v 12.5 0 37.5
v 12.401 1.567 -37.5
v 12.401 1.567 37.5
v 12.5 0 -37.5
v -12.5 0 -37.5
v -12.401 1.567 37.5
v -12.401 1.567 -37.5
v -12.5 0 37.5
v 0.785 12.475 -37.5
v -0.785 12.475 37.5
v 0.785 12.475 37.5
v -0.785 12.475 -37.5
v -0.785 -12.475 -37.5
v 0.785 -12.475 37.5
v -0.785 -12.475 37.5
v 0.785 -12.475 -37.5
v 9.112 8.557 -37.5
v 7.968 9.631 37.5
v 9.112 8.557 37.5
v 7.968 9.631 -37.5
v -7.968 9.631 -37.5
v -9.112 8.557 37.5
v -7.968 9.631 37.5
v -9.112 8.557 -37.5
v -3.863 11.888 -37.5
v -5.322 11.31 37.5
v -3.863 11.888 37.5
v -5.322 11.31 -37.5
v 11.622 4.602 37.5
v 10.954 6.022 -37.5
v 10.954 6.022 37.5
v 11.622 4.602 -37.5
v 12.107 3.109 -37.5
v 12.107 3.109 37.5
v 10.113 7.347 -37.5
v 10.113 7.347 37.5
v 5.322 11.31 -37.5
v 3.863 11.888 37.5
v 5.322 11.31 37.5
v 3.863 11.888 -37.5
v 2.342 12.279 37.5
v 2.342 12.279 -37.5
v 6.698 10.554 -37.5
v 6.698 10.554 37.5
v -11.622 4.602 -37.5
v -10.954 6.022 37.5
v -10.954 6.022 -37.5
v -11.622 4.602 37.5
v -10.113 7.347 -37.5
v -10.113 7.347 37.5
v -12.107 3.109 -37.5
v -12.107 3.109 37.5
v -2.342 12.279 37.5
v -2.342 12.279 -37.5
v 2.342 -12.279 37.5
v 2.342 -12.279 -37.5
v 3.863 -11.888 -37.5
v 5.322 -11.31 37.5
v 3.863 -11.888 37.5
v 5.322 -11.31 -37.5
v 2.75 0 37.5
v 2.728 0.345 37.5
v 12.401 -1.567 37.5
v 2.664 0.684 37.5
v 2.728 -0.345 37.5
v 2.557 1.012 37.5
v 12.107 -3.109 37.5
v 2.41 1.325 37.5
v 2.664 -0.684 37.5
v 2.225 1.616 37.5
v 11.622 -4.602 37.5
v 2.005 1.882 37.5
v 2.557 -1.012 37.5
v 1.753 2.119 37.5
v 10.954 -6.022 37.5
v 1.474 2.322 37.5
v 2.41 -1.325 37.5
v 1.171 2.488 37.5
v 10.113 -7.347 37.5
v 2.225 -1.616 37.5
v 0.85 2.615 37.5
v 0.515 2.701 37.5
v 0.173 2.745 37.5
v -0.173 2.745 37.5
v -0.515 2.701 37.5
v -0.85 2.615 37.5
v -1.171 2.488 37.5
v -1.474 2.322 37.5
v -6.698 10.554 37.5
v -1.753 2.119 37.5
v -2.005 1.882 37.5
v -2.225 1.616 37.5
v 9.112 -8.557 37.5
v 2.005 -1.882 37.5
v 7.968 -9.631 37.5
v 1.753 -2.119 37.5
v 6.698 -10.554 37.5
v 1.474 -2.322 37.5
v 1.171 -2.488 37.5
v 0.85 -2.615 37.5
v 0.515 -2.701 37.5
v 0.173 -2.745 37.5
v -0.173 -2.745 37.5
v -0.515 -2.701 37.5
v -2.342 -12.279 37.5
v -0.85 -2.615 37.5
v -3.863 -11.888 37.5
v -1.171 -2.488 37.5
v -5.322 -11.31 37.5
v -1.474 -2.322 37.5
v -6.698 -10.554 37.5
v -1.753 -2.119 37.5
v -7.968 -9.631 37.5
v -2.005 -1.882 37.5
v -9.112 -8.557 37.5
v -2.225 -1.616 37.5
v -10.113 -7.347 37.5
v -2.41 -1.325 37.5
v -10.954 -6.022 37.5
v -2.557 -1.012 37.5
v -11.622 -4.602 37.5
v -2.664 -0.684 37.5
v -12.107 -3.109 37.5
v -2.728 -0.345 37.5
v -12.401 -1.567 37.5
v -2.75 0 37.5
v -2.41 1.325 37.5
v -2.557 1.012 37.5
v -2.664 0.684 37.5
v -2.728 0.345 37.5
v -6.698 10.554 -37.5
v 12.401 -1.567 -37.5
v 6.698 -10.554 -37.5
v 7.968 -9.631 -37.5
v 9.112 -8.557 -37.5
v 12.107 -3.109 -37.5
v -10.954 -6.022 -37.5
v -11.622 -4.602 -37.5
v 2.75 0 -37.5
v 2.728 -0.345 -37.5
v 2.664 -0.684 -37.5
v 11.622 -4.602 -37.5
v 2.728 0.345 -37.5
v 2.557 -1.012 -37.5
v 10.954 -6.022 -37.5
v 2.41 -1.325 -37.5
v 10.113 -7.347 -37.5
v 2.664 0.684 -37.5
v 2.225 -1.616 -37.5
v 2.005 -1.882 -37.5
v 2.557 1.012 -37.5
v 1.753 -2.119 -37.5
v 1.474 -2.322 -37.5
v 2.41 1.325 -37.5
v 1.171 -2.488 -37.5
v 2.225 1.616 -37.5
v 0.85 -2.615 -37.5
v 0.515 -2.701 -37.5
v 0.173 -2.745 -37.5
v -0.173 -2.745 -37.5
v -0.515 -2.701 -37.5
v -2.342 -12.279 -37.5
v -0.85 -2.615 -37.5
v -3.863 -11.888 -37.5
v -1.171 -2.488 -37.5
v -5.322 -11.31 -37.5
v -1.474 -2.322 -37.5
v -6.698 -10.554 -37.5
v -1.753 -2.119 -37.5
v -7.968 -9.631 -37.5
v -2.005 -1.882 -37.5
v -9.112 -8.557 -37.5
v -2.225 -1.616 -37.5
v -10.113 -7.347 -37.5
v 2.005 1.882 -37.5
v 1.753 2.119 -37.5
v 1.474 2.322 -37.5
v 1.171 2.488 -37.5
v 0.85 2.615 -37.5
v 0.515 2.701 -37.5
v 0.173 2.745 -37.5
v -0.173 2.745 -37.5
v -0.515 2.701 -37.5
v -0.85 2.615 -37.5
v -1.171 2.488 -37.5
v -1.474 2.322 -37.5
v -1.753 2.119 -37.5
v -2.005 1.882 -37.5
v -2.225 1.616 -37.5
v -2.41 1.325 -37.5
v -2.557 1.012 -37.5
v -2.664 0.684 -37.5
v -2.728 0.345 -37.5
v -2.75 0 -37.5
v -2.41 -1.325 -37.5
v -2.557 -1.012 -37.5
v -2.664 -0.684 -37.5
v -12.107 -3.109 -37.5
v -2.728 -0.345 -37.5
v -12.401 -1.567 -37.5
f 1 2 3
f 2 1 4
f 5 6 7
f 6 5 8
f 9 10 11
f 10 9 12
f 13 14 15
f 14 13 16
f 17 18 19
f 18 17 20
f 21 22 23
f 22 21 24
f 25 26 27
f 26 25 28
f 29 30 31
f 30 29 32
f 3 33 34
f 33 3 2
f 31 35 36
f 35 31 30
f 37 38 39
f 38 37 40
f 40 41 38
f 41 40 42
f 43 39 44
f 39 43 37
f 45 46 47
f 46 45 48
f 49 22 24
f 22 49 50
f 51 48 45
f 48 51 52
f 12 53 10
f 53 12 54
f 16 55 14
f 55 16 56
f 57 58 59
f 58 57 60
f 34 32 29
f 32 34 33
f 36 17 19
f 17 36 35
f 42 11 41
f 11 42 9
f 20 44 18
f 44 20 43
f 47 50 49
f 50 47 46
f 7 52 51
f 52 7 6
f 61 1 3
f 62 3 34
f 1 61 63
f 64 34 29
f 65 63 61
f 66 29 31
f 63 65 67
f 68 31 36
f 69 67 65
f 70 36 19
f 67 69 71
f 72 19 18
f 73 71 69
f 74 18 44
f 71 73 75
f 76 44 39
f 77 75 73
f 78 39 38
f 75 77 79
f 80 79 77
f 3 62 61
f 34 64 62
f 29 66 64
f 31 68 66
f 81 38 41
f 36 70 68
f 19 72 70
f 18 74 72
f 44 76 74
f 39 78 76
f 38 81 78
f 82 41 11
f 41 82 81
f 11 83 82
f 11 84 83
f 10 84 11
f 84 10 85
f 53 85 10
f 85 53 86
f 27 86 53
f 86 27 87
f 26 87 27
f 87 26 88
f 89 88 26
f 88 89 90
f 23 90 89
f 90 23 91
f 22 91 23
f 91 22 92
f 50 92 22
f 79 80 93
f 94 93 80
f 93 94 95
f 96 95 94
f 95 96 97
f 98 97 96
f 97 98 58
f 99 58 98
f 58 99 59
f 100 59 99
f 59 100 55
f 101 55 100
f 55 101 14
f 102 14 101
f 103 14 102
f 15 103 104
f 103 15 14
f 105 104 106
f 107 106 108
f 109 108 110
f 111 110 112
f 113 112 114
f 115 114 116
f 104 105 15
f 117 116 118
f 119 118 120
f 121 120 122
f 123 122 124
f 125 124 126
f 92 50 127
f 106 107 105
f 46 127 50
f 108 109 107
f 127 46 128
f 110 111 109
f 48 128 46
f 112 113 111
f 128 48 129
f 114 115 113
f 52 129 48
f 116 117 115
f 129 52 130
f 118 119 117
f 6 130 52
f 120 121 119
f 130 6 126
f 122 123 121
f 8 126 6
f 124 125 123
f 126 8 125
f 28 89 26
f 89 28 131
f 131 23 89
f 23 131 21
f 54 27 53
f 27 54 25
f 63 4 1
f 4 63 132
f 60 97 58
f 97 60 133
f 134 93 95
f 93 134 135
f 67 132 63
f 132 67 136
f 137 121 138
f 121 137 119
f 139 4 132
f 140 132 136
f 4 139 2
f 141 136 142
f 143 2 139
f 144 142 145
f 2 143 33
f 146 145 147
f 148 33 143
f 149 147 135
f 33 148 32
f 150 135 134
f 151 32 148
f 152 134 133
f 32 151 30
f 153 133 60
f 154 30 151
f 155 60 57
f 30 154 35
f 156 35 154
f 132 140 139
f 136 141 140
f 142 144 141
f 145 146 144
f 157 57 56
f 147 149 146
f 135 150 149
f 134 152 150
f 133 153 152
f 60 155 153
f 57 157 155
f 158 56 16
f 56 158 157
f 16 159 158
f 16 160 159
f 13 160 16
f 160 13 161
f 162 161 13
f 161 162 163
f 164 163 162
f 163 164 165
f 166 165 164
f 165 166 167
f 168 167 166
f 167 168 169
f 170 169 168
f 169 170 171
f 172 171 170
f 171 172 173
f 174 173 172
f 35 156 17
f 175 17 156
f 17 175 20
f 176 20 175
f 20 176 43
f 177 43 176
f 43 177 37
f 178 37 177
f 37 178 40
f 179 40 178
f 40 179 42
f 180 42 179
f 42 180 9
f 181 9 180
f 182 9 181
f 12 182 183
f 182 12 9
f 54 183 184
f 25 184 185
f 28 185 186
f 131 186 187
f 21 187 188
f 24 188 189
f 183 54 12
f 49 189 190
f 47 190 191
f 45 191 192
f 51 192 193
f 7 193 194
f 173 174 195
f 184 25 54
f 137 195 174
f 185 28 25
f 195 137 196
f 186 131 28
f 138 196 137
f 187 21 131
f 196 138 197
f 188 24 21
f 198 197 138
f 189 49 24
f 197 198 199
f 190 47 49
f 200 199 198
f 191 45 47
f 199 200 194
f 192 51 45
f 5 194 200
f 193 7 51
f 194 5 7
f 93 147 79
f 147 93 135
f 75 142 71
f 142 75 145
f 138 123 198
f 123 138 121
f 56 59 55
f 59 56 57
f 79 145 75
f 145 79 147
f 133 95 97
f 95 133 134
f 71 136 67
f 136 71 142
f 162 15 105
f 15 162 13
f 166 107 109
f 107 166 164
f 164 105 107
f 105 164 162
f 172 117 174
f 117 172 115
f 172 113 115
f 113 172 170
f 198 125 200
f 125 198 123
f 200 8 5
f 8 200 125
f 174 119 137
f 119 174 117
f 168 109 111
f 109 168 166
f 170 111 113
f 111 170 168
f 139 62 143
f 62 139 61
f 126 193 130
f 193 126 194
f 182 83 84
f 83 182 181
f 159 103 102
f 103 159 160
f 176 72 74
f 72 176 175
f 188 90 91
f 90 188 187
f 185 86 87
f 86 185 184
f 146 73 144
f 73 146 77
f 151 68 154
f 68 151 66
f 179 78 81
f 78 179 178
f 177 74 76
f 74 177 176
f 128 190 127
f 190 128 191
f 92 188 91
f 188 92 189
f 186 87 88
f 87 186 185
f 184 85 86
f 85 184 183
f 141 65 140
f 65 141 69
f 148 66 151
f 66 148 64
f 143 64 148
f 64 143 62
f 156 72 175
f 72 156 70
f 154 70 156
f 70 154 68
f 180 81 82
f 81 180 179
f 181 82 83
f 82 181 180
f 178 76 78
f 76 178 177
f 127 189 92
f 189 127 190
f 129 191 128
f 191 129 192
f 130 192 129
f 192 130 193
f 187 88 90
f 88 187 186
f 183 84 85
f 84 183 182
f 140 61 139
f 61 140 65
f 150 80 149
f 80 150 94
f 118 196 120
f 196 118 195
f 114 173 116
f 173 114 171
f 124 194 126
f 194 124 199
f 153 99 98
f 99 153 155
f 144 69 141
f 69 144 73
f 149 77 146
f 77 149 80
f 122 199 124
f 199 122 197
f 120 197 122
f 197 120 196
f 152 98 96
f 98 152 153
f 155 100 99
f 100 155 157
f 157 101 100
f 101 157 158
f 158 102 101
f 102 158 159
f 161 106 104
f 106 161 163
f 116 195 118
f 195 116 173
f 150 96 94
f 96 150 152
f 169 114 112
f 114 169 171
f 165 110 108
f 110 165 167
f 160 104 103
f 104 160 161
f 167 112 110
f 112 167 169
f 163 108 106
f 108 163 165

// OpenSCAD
$fn = 50;


difference() {
	union() {
		translate(v = [0, 0, -37.5000000000]) {
			cylinder(h = 75, r = 12.5000000000);
		}
	}
	union() {
		translate(v = [0, 0, -100.0000000000]) {
			cylinder(h = 200, r = 2.7500000000);
		}
	}
}
